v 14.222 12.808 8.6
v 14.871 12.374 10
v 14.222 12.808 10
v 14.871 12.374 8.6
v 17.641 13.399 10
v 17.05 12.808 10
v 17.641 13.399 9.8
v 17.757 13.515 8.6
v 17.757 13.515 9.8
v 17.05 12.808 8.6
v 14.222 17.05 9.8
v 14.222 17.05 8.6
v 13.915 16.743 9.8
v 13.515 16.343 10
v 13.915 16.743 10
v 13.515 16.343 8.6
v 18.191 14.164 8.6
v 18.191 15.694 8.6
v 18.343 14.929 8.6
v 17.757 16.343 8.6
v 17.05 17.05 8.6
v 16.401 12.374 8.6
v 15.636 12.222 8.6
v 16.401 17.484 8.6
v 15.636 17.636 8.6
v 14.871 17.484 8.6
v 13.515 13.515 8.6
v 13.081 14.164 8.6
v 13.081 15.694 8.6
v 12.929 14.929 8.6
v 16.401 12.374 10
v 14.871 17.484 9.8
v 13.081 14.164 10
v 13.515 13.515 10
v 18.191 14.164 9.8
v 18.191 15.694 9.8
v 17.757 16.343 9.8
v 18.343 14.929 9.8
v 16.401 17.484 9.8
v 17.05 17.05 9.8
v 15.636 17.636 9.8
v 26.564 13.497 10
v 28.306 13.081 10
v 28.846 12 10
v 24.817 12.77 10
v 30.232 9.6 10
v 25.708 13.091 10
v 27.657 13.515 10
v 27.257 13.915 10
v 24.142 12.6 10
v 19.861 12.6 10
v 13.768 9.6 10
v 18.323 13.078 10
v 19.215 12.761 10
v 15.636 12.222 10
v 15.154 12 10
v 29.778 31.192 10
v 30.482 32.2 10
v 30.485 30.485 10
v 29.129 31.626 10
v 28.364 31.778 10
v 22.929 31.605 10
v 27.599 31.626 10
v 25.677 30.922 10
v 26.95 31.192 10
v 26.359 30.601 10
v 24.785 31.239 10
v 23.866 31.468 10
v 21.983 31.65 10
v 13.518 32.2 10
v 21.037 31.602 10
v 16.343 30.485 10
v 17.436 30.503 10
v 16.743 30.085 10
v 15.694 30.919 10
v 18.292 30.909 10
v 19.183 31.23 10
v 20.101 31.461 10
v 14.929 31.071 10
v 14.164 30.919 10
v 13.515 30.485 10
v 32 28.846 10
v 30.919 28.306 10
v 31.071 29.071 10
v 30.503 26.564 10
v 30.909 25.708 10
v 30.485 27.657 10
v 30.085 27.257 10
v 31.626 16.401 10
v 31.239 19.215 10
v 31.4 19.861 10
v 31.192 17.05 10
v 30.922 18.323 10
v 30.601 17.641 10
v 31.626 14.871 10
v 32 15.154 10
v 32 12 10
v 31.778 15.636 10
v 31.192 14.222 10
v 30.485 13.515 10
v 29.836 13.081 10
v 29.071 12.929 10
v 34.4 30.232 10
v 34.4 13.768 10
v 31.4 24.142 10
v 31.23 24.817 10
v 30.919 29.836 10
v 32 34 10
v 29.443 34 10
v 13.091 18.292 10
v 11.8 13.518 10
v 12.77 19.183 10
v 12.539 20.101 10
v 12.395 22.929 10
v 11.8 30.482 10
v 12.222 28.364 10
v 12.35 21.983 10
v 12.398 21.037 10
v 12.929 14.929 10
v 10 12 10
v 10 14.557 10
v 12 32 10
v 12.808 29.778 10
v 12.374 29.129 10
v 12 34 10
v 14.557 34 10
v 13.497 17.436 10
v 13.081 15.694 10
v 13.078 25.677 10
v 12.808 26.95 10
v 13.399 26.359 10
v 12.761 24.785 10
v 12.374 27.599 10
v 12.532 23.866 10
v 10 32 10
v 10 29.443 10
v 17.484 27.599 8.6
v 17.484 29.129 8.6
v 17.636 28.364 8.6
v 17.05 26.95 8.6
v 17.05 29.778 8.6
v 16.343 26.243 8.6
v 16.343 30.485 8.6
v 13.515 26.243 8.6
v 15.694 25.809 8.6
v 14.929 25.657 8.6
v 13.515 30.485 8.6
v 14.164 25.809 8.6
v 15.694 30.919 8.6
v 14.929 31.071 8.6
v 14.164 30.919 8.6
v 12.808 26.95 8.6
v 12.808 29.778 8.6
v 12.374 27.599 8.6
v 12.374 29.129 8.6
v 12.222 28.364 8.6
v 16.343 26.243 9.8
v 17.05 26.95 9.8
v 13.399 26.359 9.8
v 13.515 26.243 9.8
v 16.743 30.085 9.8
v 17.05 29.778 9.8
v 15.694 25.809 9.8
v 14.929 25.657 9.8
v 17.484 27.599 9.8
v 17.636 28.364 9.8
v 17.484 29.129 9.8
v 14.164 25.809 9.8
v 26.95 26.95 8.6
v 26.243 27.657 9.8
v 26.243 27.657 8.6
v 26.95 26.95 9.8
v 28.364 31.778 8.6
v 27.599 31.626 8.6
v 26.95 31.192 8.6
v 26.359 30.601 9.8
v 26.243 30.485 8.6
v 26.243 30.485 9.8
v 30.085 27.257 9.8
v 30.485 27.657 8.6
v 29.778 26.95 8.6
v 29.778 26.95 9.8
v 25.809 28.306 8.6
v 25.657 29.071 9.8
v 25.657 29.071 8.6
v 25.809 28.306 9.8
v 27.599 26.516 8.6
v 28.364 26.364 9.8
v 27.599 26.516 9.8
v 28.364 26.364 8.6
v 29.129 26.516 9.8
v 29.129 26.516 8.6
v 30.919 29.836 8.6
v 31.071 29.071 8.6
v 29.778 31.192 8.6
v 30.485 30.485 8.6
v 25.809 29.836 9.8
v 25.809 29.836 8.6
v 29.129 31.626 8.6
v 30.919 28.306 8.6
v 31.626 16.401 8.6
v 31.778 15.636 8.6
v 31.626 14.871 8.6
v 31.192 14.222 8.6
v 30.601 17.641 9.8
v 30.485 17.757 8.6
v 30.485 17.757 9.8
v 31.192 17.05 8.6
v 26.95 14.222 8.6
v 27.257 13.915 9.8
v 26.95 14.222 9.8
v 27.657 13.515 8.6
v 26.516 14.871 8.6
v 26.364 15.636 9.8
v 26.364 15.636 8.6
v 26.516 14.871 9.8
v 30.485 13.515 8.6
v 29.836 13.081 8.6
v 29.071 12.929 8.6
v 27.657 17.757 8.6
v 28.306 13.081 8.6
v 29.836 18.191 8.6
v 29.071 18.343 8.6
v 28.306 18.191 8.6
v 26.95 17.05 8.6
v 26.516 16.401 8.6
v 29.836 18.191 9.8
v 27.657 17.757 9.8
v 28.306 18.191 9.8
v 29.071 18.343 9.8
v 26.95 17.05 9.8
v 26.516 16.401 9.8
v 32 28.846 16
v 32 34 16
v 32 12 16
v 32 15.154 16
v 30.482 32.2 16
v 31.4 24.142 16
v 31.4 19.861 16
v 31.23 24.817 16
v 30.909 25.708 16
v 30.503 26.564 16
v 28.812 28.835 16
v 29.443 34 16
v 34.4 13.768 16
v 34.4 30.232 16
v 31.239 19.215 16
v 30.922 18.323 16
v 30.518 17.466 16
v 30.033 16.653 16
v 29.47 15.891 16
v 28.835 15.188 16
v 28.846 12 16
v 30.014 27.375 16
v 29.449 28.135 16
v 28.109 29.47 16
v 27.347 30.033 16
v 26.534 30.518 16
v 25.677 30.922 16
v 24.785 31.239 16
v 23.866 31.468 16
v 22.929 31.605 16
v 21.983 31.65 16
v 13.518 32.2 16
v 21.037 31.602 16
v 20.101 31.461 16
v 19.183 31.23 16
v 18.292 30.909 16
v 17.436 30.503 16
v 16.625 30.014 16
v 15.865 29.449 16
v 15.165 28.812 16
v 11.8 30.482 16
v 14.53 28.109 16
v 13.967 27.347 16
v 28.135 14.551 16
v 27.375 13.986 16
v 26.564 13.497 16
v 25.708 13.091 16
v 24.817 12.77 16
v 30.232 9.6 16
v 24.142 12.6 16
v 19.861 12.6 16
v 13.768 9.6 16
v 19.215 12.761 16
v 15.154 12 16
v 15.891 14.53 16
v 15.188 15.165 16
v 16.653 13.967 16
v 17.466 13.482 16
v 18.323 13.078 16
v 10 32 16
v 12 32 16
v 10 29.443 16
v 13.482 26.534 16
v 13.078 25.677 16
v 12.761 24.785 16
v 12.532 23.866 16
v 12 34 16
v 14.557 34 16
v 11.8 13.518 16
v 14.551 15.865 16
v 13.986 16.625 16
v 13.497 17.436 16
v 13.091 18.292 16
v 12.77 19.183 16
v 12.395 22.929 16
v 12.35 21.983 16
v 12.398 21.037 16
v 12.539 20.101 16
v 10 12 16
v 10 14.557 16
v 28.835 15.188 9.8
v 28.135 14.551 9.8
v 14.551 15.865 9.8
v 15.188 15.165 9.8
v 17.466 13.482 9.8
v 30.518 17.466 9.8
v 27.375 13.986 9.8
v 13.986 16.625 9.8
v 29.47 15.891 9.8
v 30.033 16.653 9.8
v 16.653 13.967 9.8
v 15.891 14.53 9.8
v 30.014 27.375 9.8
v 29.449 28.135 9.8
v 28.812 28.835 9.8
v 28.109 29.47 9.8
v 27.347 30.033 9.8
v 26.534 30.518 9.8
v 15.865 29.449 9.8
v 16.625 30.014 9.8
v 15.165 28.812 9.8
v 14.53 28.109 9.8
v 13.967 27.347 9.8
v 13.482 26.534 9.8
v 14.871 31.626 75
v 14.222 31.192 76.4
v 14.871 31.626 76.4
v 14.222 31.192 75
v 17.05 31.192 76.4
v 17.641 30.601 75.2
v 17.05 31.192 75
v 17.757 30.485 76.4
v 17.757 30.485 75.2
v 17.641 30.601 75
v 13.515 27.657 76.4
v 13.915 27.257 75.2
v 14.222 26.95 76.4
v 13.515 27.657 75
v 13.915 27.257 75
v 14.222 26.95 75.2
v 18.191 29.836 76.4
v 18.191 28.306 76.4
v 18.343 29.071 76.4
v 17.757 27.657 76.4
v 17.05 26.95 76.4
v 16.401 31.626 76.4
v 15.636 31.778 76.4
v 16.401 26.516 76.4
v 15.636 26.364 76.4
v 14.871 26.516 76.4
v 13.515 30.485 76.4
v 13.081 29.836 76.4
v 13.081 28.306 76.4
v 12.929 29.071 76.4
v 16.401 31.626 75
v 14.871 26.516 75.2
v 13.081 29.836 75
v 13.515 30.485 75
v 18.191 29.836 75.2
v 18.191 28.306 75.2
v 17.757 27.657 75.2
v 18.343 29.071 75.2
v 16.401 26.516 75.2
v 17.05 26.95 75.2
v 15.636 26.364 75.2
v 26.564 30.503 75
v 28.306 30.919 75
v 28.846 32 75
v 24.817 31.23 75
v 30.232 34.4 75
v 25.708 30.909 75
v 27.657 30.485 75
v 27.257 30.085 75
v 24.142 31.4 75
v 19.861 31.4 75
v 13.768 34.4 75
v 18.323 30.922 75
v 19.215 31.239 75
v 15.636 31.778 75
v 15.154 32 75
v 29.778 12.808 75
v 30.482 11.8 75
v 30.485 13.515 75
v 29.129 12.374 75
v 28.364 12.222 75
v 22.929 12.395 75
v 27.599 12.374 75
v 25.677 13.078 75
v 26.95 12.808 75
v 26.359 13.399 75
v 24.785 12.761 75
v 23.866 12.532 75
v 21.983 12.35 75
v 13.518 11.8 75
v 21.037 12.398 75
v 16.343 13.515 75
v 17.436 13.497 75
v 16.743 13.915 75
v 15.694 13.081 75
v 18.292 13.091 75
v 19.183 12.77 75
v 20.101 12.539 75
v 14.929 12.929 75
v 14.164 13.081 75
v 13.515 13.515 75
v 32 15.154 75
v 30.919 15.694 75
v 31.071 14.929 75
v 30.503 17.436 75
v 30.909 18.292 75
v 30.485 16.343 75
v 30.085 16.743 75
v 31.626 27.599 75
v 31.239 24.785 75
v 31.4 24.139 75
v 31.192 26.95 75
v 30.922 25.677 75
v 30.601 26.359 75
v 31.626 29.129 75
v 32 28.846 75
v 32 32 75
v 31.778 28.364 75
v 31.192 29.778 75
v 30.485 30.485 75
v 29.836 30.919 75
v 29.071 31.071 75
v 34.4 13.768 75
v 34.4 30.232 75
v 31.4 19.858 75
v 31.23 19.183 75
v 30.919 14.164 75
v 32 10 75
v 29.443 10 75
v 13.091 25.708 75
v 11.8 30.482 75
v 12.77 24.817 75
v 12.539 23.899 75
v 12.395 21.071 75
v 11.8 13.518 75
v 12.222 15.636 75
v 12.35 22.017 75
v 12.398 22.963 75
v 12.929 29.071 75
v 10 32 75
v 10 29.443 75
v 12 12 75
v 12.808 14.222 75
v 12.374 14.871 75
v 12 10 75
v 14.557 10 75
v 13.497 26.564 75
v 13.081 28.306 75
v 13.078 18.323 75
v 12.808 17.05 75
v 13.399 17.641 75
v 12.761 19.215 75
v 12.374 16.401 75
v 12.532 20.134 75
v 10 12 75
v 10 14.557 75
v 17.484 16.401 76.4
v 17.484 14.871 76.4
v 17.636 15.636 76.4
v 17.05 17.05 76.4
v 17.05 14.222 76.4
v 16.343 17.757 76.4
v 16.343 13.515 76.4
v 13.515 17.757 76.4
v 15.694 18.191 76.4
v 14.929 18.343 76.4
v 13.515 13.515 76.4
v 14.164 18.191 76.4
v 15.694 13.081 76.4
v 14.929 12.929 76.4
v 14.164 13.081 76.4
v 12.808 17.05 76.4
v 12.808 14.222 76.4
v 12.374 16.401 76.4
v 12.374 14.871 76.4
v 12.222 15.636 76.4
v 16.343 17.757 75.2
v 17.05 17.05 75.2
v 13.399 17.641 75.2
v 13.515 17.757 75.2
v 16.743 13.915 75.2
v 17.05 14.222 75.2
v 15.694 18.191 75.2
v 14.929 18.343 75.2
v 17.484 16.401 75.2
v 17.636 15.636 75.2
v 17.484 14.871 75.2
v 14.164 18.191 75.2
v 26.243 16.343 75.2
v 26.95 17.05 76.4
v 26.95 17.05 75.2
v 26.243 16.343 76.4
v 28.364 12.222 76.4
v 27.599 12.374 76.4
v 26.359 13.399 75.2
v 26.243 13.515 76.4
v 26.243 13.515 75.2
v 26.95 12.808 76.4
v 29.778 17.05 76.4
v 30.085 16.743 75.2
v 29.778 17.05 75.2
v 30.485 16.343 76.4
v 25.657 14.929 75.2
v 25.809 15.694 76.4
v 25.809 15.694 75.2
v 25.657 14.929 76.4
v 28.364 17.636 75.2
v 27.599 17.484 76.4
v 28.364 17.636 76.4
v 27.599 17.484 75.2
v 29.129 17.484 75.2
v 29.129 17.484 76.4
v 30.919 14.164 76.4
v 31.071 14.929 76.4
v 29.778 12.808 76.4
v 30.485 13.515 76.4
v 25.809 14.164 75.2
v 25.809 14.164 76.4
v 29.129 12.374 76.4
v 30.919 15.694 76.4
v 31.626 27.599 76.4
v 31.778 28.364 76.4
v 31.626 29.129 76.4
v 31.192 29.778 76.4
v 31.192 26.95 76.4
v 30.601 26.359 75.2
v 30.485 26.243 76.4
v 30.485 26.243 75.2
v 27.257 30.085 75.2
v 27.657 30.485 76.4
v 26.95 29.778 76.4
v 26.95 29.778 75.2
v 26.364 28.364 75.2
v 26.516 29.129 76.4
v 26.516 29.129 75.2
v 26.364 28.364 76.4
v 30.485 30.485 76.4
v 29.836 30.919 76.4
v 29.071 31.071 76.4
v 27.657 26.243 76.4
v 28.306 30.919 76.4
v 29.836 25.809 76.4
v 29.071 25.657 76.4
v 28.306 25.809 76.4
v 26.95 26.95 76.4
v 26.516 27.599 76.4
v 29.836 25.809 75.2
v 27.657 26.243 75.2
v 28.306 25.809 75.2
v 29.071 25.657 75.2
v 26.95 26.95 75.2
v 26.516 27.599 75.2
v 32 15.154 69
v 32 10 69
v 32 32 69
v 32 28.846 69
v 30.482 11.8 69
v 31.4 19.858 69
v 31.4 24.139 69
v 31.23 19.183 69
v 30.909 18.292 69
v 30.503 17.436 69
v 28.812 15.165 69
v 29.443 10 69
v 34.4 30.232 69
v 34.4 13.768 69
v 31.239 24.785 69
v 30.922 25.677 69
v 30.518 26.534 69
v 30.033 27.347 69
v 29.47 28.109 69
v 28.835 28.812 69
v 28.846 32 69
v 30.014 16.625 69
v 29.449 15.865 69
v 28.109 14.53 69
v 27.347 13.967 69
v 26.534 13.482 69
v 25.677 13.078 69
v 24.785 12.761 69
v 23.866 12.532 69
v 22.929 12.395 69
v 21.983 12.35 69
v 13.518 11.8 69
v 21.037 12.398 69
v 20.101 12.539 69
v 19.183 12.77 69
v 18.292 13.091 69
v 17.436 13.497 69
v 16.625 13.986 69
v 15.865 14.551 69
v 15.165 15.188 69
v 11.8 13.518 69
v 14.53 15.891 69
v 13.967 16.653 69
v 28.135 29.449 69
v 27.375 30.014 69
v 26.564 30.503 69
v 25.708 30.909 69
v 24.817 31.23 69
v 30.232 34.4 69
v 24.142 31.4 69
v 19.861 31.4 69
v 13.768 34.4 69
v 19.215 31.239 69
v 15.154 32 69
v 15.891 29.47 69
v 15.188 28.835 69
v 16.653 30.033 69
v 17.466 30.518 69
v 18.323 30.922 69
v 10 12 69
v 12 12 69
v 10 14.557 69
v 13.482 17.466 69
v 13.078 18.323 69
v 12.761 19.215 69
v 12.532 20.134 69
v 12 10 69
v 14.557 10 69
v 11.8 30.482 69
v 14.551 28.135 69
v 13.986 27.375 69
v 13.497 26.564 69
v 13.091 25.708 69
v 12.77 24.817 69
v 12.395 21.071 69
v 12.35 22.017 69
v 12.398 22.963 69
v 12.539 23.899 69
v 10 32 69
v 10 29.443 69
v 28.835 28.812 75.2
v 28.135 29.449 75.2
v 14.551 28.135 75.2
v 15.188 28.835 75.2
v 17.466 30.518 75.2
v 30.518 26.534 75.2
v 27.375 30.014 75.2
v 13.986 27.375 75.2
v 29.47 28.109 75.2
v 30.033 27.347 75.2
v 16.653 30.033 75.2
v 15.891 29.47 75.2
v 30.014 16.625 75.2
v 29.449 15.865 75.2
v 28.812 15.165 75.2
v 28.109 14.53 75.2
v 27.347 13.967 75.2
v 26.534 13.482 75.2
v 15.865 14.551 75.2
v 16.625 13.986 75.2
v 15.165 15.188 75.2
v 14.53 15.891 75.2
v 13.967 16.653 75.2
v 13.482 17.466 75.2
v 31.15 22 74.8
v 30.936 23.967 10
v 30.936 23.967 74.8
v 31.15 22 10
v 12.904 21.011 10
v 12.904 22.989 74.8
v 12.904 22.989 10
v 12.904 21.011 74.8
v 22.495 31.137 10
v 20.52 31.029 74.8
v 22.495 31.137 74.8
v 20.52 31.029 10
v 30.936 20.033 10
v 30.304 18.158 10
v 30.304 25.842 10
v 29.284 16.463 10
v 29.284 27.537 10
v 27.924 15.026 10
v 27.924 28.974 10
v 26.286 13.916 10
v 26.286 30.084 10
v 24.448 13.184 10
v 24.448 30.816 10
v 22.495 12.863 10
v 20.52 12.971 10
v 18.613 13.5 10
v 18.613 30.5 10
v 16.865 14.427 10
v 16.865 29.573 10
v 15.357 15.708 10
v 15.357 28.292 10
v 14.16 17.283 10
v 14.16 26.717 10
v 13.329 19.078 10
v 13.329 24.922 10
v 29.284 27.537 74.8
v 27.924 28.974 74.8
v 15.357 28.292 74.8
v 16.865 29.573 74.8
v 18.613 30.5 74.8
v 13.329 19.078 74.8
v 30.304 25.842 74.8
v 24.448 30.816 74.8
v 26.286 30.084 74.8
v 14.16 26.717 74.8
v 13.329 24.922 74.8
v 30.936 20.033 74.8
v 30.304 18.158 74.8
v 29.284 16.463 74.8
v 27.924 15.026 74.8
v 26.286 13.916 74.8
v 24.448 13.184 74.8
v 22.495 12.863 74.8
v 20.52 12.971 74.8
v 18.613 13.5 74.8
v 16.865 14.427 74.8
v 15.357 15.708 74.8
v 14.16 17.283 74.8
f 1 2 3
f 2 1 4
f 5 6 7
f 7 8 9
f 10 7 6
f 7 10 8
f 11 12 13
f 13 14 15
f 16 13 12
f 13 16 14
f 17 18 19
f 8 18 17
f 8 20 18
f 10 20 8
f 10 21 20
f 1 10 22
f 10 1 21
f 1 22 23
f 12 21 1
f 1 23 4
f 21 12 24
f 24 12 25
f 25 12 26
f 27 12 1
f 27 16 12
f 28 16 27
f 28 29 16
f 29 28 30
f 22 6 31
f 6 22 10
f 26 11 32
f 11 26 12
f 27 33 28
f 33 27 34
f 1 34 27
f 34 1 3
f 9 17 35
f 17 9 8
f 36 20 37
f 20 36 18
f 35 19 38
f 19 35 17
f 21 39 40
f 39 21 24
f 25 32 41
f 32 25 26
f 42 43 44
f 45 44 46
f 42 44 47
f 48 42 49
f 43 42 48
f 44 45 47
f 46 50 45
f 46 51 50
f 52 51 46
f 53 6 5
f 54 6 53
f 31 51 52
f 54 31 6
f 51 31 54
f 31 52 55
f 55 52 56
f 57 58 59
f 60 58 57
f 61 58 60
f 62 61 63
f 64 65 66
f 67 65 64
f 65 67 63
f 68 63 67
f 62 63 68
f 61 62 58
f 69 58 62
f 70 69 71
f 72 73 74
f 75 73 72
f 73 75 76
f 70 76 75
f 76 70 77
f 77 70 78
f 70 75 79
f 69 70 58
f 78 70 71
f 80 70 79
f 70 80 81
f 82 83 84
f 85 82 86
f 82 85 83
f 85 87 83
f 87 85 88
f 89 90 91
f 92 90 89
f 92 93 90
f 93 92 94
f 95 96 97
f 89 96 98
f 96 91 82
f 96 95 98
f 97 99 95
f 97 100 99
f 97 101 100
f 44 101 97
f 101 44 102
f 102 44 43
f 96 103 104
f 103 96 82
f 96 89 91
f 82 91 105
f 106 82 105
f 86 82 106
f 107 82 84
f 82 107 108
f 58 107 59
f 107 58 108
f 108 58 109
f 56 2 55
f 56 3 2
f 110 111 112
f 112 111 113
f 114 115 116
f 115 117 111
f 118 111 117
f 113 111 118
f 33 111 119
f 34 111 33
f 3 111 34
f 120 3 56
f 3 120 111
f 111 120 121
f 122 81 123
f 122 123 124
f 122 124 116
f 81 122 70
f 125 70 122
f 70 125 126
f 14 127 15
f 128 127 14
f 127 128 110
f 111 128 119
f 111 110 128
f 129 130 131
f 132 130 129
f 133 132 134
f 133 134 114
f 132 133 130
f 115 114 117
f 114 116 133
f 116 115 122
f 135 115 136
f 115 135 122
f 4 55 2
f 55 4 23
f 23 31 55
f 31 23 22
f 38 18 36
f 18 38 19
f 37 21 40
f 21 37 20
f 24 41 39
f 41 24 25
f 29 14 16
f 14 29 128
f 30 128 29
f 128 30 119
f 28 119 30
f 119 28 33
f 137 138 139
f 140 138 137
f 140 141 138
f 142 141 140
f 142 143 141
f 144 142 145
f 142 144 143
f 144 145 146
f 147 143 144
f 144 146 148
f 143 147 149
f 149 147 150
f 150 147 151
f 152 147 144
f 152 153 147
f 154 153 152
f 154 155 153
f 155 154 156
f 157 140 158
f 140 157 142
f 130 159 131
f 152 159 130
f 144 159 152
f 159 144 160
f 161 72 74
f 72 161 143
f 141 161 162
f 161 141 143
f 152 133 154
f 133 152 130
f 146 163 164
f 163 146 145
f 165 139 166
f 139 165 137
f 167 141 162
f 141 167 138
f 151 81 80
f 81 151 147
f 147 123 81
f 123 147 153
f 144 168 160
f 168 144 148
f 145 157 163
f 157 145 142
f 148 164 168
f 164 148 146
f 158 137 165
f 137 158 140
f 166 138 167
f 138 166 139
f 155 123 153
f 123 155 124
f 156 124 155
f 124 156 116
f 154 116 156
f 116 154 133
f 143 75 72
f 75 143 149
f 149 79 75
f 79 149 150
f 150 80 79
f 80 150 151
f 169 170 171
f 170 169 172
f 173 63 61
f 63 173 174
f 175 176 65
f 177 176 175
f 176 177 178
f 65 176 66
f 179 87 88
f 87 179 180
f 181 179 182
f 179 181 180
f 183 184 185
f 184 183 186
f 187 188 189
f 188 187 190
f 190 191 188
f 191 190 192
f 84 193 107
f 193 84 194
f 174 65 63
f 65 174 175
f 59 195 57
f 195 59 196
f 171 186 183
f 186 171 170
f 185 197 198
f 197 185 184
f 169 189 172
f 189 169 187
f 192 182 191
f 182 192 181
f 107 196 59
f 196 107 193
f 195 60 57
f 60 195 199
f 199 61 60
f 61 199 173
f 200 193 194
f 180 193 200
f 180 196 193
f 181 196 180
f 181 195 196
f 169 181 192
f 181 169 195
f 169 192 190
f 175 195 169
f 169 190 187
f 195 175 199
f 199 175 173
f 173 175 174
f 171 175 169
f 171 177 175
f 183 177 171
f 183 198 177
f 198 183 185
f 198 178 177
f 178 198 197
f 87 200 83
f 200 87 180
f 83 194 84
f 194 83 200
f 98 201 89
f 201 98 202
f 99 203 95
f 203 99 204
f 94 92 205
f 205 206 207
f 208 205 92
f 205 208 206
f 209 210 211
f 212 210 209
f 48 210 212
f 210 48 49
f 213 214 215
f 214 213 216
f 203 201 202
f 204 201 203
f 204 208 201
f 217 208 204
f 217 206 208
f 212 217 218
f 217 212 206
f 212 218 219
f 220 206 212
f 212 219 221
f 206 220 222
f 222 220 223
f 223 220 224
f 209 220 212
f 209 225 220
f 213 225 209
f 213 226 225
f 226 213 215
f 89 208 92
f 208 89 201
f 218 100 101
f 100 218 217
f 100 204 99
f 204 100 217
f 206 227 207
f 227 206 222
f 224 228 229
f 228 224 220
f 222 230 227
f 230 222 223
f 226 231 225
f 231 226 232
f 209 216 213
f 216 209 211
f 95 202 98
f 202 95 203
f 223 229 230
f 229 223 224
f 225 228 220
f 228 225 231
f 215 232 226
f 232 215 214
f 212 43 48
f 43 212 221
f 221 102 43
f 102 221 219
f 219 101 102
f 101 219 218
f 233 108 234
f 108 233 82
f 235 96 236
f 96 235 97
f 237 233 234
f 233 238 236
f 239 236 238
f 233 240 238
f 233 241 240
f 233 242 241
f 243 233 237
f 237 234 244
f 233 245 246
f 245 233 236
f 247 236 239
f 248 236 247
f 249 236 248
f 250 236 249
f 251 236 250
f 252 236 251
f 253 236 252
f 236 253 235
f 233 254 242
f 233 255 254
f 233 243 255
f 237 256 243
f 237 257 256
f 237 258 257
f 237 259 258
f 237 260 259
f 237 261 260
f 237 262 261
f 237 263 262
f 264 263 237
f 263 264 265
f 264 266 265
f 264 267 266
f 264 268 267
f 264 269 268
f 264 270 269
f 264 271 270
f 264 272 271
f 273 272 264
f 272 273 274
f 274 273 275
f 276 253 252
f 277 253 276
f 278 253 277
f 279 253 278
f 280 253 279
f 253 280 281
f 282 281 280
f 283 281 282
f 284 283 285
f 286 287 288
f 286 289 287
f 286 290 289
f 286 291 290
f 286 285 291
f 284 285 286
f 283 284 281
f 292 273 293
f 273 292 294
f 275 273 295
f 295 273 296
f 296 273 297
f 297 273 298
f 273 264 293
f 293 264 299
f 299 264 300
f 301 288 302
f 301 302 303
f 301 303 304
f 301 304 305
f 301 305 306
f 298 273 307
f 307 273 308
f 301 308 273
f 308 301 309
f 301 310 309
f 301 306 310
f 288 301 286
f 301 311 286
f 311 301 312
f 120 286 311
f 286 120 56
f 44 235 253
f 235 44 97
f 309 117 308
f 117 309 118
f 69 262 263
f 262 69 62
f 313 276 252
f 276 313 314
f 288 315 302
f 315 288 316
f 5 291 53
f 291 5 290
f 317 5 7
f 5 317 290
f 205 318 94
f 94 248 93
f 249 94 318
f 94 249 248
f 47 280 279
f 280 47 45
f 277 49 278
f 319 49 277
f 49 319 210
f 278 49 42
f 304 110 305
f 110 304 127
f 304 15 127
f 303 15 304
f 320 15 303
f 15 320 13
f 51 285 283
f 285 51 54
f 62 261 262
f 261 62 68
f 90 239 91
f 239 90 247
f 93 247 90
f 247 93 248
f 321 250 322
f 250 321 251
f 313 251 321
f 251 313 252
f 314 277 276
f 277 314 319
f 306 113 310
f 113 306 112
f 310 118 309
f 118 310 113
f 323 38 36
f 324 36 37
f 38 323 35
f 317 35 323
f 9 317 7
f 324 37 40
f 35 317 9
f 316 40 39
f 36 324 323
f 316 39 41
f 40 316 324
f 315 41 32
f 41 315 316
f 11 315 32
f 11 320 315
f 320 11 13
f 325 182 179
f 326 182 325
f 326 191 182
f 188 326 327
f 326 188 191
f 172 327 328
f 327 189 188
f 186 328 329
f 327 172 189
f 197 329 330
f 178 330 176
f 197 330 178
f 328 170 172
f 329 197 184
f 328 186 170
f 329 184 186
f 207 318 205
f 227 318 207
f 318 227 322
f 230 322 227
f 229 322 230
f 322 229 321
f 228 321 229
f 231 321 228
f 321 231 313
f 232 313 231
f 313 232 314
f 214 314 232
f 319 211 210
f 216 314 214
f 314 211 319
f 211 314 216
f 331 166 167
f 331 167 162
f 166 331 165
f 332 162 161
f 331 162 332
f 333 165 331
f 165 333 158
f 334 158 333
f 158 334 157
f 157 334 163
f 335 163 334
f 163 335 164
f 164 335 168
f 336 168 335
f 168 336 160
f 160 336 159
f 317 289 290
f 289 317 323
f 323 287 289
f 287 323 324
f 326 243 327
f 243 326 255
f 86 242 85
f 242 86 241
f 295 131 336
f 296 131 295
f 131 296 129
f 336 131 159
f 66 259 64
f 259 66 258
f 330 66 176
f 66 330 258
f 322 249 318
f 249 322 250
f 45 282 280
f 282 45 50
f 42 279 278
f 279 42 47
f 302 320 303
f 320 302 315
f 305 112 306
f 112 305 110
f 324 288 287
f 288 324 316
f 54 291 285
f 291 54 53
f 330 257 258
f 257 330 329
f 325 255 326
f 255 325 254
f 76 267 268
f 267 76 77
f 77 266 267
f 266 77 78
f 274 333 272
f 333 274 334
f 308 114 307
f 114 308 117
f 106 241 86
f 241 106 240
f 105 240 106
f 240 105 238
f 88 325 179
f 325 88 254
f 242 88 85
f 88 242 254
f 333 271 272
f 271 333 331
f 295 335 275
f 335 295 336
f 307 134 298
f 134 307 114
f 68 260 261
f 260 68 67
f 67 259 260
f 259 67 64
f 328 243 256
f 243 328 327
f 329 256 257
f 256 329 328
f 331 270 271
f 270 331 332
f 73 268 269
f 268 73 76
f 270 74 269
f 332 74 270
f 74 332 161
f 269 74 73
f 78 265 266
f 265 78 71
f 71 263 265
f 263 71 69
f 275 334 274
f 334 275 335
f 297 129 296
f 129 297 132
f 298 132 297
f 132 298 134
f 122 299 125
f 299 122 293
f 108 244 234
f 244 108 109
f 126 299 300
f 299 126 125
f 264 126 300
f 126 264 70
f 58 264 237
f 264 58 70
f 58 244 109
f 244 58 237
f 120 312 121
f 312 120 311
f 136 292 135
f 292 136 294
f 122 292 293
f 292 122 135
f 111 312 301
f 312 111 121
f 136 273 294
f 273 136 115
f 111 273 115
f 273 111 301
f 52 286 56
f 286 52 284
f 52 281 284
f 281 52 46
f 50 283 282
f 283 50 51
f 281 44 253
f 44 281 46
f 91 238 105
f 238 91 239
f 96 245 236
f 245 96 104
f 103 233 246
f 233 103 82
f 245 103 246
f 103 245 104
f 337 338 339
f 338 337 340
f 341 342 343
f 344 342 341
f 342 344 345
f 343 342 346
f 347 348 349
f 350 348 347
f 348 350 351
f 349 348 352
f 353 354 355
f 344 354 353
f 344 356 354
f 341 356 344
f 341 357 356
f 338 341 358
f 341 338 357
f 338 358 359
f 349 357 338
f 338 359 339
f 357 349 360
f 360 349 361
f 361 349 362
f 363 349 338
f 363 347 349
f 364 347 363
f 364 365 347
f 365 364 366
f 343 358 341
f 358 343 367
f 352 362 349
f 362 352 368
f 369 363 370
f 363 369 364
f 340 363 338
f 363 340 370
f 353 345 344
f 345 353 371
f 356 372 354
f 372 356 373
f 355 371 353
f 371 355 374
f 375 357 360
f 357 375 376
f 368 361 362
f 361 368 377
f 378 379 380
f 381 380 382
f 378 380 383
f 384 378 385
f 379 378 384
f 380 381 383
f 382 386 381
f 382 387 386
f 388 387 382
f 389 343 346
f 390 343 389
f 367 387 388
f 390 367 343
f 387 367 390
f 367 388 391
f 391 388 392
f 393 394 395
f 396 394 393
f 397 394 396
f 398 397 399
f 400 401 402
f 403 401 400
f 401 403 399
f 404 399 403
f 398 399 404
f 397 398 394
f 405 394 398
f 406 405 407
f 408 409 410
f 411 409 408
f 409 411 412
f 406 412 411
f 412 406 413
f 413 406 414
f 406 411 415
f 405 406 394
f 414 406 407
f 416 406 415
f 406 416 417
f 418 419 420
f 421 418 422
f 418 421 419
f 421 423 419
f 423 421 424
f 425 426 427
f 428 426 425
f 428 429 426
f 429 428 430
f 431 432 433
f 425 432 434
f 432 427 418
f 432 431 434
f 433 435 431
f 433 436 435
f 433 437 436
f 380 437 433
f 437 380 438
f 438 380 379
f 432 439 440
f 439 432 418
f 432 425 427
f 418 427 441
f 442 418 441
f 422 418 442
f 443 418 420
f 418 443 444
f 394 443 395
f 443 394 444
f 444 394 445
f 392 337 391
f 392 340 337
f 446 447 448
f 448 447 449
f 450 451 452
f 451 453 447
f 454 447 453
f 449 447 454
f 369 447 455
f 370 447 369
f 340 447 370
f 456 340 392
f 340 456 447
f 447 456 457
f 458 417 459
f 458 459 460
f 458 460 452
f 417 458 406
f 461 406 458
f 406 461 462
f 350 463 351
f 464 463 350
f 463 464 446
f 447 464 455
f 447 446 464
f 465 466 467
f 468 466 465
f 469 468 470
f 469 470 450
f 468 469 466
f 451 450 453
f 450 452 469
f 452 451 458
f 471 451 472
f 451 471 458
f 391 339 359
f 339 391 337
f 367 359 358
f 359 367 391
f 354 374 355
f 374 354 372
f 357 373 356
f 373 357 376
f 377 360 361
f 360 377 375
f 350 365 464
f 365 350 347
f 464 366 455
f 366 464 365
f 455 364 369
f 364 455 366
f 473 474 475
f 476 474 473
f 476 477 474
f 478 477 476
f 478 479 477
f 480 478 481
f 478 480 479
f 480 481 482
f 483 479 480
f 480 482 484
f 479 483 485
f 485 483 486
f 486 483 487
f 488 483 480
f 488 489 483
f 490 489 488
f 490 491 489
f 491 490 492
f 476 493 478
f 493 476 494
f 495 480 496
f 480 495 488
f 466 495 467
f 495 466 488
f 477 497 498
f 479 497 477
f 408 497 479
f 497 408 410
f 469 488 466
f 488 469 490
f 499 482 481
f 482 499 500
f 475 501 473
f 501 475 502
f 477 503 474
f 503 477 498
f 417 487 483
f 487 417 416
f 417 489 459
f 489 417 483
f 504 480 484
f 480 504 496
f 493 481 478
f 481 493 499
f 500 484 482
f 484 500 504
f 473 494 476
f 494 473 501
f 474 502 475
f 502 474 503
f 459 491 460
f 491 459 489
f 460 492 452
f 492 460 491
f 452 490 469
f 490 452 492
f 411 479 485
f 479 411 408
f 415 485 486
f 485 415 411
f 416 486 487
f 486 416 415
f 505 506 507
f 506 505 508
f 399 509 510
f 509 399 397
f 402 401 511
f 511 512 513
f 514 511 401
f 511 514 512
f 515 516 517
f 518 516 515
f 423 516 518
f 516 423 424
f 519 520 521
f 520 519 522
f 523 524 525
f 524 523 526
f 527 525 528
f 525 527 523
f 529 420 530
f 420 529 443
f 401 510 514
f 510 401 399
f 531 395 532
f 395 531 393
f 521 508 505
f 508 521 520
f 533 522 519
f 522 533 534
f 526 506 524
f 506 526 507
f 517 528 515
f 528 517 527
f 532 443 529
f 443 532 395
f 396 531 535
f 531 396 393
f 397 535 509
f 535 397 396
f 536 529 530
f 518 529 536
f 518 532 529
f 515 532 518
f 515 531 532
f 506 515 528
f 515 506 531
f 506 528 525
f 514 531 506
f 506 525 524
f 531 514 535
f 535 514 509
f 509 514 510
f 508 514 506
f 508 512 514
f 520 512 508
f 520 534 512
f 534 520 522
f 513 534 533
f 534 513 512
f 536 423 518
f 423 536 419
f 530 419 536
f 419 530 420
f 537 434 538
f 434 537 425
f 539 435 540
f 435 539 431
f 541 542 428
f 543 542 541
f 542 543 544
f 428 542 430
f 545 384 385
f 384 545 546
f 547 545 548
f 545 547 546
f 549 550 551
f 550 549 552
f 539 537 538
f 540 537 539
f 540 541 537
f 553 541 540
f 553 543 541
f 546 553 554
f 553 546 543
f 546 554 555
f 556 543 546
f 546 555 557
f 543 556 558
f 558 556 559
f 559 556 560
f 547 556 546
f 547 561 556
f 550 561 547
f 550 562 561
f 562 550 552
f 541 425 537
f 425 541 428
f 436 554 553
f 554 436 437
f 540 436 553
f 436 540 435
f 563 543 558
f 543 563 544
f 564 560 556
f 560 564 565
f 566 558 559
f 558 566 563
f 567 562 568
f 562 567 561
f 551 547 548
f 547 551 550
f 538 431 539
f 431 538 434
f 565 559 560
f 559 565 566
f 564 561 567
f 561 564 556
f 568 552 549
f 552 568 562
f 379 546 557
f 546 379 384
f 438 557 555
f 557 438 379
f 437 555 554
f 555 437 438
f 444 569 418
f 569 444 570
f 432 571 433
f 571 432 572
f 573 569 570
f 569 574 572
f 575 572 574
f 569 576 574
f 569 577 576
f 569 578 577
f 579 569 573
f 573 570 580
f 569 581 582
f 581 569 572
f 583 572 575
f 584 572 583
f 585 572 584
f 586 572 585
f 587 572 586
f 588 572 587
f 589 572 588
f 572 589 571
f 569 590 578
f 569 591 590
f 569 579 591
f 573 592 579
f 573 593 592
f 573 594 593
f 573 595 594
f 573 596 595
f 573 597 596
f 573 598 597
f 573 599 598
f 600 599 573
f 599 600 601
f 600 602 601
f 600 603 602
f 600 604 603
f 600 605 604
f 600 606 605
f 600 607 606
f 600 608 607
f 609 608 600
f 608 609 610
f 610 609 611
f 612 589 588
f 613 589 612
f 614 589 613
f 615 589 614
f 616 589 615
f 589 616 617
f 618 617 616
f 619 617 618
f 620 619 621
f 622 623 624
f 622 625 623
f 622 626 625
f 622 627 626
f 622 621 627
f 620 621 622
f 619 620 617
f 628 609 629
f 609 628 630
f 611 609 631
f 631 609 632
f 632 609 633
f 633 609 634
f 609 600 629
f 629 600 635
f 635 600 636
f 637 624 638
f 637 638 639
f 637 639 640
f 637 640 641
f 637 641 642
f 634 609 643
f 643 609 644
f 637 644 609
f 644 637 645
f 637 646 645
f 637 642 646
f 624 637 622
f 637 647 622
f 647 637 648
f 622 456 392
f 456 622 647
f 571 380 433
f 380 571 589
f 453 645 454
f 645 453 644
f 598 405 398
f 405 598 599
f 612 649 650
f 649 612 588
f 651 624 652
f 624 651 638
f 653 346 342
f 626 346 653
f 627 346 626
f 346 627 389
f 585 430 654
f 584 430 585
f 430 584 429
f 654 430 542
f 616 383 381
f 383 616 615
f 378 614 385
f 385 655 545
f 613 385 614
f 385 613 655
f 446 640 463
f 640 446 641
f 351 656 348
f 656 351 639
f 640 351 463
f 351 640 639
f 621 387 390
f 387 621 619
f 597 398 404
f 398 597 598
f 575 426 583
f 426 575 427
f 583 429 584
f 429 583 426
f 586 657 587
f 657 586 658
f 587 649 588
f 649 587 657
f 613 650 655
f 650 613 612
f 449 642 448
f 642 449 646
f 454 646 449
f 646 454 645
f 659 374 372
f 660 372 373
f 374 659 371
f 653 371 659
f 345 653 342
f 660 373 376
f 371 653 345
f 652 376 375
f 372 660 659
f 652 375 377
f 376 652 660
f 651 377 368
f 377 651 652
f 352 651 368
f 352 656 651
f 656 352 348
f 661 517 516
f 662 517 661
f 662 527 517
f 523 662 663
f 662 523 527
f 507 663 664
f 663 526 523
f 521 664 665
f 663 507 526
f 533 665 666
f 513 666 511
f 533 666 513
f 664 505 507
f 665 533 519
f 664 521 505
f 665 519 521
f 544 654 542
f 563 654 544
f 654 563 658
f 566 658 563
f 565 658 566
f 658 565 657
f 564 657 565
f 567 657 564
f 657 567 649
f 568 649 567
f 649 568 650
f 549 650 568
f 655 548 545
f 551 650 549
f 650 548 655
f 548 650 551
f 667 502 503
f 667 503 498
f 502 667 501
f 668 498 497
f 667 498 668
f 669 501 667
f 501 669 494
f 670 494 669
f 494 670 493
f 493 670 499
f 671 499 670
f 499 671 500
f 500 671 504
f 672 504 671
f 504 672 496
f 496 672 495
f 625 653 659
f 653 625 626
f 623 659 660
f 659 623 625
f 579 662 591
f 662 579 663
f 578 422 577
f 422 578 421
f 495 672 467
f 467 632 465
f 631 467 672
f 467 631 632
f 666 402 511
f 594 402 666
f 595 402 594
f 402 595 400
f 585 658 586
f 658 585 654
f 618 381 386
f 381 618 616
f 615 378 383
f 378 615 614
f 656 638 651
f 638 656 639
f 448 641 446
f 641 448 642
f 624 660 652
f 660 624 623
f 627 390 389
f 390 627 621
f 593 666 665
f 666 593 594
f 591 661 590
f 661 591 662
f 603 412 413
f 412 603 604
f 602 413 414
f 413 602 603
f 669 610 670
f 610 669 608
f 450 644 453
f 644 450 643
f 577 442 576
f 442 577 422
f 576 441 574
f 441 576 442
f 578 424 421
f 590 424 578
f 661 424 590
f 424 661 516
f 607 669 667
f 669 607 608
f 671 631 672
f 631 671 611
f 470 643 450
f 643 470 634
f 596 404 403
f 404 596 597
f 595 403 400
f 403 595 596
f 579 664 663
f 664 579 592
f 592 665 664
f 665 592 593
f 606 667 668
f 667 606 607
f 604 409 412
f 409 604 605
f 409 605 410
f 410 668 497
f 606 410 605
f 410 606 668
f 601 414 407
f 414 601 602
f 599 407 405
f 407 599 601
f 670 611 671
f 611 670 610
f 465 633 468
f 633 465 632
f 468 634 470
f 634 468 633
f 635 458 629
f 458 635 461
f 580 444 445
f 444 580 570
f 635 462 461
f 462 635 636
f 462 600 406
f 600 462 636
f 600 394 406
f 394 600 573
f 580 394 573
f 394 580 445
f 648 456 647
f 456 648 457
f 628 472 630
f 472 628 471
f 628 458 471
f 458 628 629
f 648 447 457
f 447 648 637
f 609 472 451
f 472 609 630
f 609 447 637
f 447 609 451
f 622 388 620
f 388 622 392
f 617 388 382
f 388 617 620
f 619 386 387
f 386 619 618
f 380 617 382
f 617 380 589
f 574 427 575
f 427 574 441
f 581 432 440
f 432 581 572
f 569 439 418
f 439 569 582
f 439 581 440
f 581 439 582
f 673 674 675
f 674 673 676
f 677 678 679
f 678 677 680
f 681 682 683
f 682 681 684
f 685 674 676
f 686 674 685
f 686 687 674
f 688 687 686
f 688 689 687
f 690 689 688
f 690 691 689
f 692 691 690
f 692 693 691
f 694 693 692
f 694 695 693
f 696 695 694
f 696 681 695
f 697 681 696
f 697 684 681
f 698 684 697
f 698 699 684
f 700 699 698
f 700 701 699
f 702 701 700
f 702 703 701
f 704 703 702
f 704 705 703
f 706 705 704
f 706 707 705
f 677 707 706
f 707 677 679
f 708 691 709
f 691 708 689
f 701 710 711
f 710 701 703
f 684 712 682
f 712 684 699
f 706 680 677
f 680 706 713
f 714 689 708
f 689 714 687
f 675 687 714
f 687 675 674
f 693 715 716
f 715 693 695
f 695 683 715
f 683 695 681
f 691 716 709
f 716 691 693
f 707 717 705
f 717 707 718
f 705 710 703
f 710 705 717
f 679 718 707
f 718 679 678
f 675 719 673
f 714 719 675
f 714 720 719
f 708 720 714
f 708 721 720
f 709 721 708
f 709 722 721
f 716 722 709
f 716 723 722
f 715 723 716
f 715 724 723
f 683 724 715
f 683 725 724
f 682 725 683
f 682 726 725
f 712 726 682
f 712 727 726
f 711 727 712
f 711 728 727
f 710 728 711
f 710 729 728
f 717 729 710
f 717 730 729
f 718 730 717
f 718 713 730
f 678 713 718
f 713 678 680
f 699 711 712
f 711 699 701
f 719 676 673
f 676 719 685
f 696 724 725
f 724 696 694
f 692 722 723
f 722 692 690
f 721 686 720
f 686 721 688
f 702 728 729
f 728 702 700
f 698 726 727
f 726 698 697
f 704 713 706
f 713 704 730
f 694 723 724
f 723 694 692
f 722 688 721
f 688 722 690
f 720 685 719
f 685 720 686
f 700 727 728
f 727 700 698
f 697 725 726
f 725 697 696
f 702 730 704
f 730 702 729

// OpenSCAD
// file: battery_lib_parameters/tube_batteries.scad
BATTERYLIB_TYPE_TUBE = "tube";



// Tube battery dimensions
//
// |<-->| Body Diameter
//  >||<- Anode Diameter
//  _--_  === Anode Height
// |    |  ^
// |    |  |
// |    | Body Height
// |    |  |
// |____|  V
//   --   === Cathode Height
//  >||<- Cathode Diameter


BatteryLib_Tube_Battery_Parameters = 
[
    // Based on my own measurements
    [
        "18650",
        [
            ["type", "tube"],
            ["diameter", 18.30],
            ["height", 64.80],
            ["cathode diameter", 13.30],
            ["cathode height", 0.00],
            ["anode diameter", 10.50],
            ["anode height", 0.00],
        ],
    ],

    // Measurements provided by "rowdypants" on Thingiverse
    [
        "26650",
        [
            ["type", "tube"],
            ["diameter", 26.50],
            ["height", 66.00],
            ["cathode diameter", 20.00],
            ["cathode height", 1.00],
            ["anode diameter", 13.00],
            ["anode height", 2.00],
        ],
    ],

    [
        "AAAA",
        [
            ["type", "tube"],
            ["diameter", 8.30], // Official value from Wikipedia (https://en.wikipedia.org/wiki/AAAA_battery)
            ["height", 40.00],
            ["cathode diameter", 4.91],
            ["cathode height", 0.50],
            ["anode diameter", 3.37],
            ["anode height", 1.77],
        ],
    ],

    [
        "AAA",
        [
            ["type", "tube"],
            ["diameter", 10.50],
            ["height", 43.50],
            ["cathode diameter", 6.30],
            ["cathode height", 0.40],
            ["anode diameter", 3.80],
            ["anode height", 0.80],
        ],
    ],

    [
        "AA",
        [
            ["type", "tube"],
            ["diameter", 14.50],
            ["height", 49.50],
            ["cathode diameter", 9.10],
            ["cathode height", 0.40],
            ["anode diameter", 5.50],
            ["anode height", 1.00],
        ],
    ],

    [
        "C",
        [
            ["type", "tube"],
            ["diameter", 26.20],
            ["height", 47.60],
            ["cathode diameter", 18.00],
            ["cathode height", 0.40],
            ["anode diameter", 6.00],
            ["anode height", 2.00],
        ],
    ],

    [
        // Dimensions courtesy of "enriqueeeee" on Thingiverse
        "CR123A",
        [
            ["type", "tube"],
            ["diameter", 16.71],
            ["height", 33.30],
            ["cathode diameter", 16.71],
            ["cathode height", 0.00],
            ["anode diameter", 6.21],
            ["anode height", 0.50],
        ],
    ],

    [
        // Dimensions courtesy of "majorsl" on Thingiverse
        "CR2",
        [
            ["type", "tube"],
            ["diameter", 15.10],
            ["height", 26.70],
            ["cathode diameter", 15.10],
            ["cathode height", 0.00],
            ["anode diameter", 6.30],
            ["anode height", 0.90],
        ],
    ],

    [
        "D",
        [
            ["type", "tube"],
            ["diameter", 34.20],
            ["height", 59.60],
            ["cathode diameter", 18.00],
            ["cathode height", 0.40],
            ["anode diameter", 9.50],
            ["anode height", 1.50],
        ],
    ],

    [
        // Dimensions courtesy of "enriqueeeee" on Thingiverse
        "ER14250V",
        [
            ["type", "tube"],
            ["diameter", 14.32],
            ["height", 24.10],
            ["cathode diameter", 14.32],
            ["cathode height", 0.00],
            ["anode diameter", 4.28],
            ["anode height", 0.77],
        ],
    ],
];



BatteryLib_Valid_Tube_Battery_Names = [ for (x = BatteryLib_Tube_Battery_Parameters) x[0] ];



//-----------------------------------------------------------------------------
// "Private" modules



// Generate a specified tube style battery
module _BatteryLib_GenerateTubeBattery(battery_name)
{
    if (BatteryLib_Type(battery_name) != BATTERYLIB_TYPE_TUBE)
        assert(false, str(battery_name, " is not a tube battery"));

    body_diameter = BatteryLib_BodyDiameter(battery_name);
    body_height = BatteryLib_BodyHeight(battery_name);
    cathode_diameter = BatteryLib_CathodeDiameter(battery_name);
    cathode_height = BatteryLib_CathodeHeight(battery_name);
    anode_diameter = BatteryLib_AnodeDiameter(battery_name);
    anode_height = BatteryLib_AnodeHeight(battery_name);

    translate([0, 0, cathode_height])
    {
        cylinder(d=body_diameter, body_height);
        translate([0, 0, body_height])
            cylinder(d=anode_diameter, anode_height);
        translate([0, 0, -cathode_height])
            cylinder(d=cathode_diameter, cathode_height);
    }
}
// file: battery_lib_parameters/rectangle_batteries.scad
// Rectangular battery dimensions
// ...well, really, just 9v batteries...
//
// Cathode Diameter
//  |
//  >||< >||<- Anode Diameter
//  _--___--_ ==== Terminal Height
// |         |  ^
// |         |  |
// |         | Body Height
// |         |  |
// |_________|  V
// |<------->|<- Body Width
//
//  __--__
// |      |
// |      |
// |      |
// |      |
// |______|
// |<---->|<- Body Length



BatteryLib_Rectangle_Battery_Parameters =
[
    [
        "9V",
        [
            ["type", "rectangle"],
            ["width", 26.50],
            ["length", 17.50],
            ["height", 44.90],
            ["cathode diameter", 8.52],
            ["cathode height", 2.10],
            ["anode diameter", 5.75],
            ["anode height", 2.10],
            ["terminal distance", 12.70],
        ],
    ],
];



BatteryLib_Valid_Rectangle_Battery_Names = [ for (x = BatteryLib_Rectangle_Battery_Parameters) x[0] ];



//-----------------------------------------------------------------------------
// "Private" modules



// Generate a specified rectangle style battery
module _BatteryLib_GenerateRectangleBattery(battery_name)
{
    if (BatteryLib_Type(battery_name) != "rectangle")
        assert(false, str(battery_name, " is not a rectangle battery"));

    body_width = BatteryLib_BodyWidth(battery_name);
    body_length = BatteryLib_BodyLength(battery_name);
    body_height = BatteryLib_BodyHeight(battery_name);
    cathode_diameter = BatteryLib_CathodeDiameter(battery_name);
    cathode_height = BatteryLib_CathodeHeight(battery_name);
    anode_diameter = BatteryLib_AnodeDiameter(battery_name);
    anode_height = BatteryLib_AnodeHeight(battery_name);
    terminal_distance = BatteryLib_TerminalDistance(battery_name);

    translate([-body_width/2, -body_length/2, 0])
        cube([body_width, body_length, body_height]);
    translate([-terminal_distance/2, 0, body_height])
        cylinder(d=anode_diameter, anode_height);
    translate([terminal_distance/2, 0, body_height])
        cylinder(d=cathode_diameter, cathode_height);
}
// file: 18650_Holder.scad
// Improved, modular version of the 18650 battery holder script
// Based on https://www.thingiverse.com/thing:3026658

// Constants
diameter = 18.8; // Diameter of 18650 cell
height = 6;      // Height of holder
tab = 1.4;       // Tab height
tolerance = 0.5; // Tolerance to help fit

// Main configuration module
module batteryHolderConfig(cells_x = 2, cells_y = 2, negative = 0, cable_tie = 1) {
    // Generate the grid of cells and connectors
    generateCells(cells_x, cells_y, negative, cable_tie, diameter, height, tab);
    generateGaps(cells_x, cells_y, cable_tie, height);
    generateConnectors(cells_x, cells_y, height, tolerance, cable_tie);
}

// Generates the grid of cells
module generateCells(cells_x, cells_y, negative, cable_tie, diameter, height, tab) {
    for ( y= [1:1:cells_y]) for ( x= [ 1:1:cells_x]) 
        translate ([x*22,y*22,0]) cell(diameter, height, tab, negative);
}

// Fills gaps between cells
module generateGaps(cells_x, cells_y, cable_tie, height) {
    for ( x= [1:1:cells_x]) for ( y= [1:1:cells_y-1])    
        translate([22*x- (cable_tie ==1 ? 7: 12),22*y+10,0]) cube([cable_tie ==1 ? 14 : 22,2,height]);

    for ( x= [1:1:cells_x-1]) for ( y= [1:1:cells_y])    
        translate([22*x+12,22*y-(cable_tie ==1 ? 7: 10),0]) rotate([0,0,90]) cube([cable_tie ==1 ? 14: 22,2,height]);
}

// Adds male and female connectors
module generateConnectors(cells_x, cells_y, height, tolerance, cable_tie) {
    for ( x= [1:1:cells_x]) translate([22*x,22*cells_y+11.4,0]) trapezoid(13, height);
    for ( y= [1:1:cells_y]) translate([22*cells_x+11.4,22*y,0]) rotate([0,0,-90]) trapezoid(13, height);
    
    for ( x= [1:1:cells_x]) difference() {
        translate([22*x,11,height/2])cube([20,2,height],center=true);
        translate([22*x,10.8,0]) trapezoid(13+tolerance, height);
    }
    for ( y= [1:1:cells_y]) difference() {
        rotate([0,0,90]) translate([22*y,-11,height/2])cube([20,2,height],center=true);
        rotate([0,0,90]) translate([22*y,-10.8,0]) rotate([0,0,180]) trapezoid(13+tolerance, height);
    }
}

// Module for trapezoid (connectors)
module trapezoid(length, height) {
    hull() { 
        translate([-length/2, 0, 0]) rotate([0,0,30]) cylinder (r = 2, h=height,  $fn=3); 
        translate([length/2, 0, 0]) rotate([0,0,30]) cylinder (r = 2, h=height,  $fn=3);
    }
}

// Module to create a single cell
module cell(diameter, height, tab, negative) {
    difference() {
        union() {
            translate([0,0,height/2]) cube([20,20,height],center = true);
            if (!negative) for (rotation =[45:90:325]) rotate([0,0,rotation])  
                translate([0,9,0]) hull(){     
                    translate([1,0,height]) cylinder(r=2, h=tab, $fn=16);
                    translate([1,1,height]) cylinder(r=2, h=tab, $fn=16);
                    translate([0,1,height]) cylinder(r=2, h=tab, $fn=16);
                    translate([0,0,height]) cylinder(r=2, h=tab, $fn=16);
                } 
        }
        rotate([0,0,-0.1]) cylinder(r=diameter/2 + tolerance/2, h= height+ 0.2, $fn=64); // Hole for cell
    }
}

// Example usage:
batteryHolderConfig(cells_x = 3, cells_y = 2, negative = 1, cable_tie = 1);
// main file
use <18650_Holder.scad>;
use <battery_lib.scad>

translate([0, 0, 10]) {
// Generate a model of a tube battery 
translate([22, 22, 0]) 
color("DodgerBlue") BatteryLib_GenerateBatteryModel("18650");


translate([0, 44, 6]) 
rotate([180, 0, 0]) 
batteryHolderConfig(cells_x = 1, cells_y = 1, negative = 0, cable_tie = 1);

translate([0, 0, 59]) 
batteryHolderConfig(cells_x = 1, cells_y = 1, negative = 0, cable_tie = 1);
}
